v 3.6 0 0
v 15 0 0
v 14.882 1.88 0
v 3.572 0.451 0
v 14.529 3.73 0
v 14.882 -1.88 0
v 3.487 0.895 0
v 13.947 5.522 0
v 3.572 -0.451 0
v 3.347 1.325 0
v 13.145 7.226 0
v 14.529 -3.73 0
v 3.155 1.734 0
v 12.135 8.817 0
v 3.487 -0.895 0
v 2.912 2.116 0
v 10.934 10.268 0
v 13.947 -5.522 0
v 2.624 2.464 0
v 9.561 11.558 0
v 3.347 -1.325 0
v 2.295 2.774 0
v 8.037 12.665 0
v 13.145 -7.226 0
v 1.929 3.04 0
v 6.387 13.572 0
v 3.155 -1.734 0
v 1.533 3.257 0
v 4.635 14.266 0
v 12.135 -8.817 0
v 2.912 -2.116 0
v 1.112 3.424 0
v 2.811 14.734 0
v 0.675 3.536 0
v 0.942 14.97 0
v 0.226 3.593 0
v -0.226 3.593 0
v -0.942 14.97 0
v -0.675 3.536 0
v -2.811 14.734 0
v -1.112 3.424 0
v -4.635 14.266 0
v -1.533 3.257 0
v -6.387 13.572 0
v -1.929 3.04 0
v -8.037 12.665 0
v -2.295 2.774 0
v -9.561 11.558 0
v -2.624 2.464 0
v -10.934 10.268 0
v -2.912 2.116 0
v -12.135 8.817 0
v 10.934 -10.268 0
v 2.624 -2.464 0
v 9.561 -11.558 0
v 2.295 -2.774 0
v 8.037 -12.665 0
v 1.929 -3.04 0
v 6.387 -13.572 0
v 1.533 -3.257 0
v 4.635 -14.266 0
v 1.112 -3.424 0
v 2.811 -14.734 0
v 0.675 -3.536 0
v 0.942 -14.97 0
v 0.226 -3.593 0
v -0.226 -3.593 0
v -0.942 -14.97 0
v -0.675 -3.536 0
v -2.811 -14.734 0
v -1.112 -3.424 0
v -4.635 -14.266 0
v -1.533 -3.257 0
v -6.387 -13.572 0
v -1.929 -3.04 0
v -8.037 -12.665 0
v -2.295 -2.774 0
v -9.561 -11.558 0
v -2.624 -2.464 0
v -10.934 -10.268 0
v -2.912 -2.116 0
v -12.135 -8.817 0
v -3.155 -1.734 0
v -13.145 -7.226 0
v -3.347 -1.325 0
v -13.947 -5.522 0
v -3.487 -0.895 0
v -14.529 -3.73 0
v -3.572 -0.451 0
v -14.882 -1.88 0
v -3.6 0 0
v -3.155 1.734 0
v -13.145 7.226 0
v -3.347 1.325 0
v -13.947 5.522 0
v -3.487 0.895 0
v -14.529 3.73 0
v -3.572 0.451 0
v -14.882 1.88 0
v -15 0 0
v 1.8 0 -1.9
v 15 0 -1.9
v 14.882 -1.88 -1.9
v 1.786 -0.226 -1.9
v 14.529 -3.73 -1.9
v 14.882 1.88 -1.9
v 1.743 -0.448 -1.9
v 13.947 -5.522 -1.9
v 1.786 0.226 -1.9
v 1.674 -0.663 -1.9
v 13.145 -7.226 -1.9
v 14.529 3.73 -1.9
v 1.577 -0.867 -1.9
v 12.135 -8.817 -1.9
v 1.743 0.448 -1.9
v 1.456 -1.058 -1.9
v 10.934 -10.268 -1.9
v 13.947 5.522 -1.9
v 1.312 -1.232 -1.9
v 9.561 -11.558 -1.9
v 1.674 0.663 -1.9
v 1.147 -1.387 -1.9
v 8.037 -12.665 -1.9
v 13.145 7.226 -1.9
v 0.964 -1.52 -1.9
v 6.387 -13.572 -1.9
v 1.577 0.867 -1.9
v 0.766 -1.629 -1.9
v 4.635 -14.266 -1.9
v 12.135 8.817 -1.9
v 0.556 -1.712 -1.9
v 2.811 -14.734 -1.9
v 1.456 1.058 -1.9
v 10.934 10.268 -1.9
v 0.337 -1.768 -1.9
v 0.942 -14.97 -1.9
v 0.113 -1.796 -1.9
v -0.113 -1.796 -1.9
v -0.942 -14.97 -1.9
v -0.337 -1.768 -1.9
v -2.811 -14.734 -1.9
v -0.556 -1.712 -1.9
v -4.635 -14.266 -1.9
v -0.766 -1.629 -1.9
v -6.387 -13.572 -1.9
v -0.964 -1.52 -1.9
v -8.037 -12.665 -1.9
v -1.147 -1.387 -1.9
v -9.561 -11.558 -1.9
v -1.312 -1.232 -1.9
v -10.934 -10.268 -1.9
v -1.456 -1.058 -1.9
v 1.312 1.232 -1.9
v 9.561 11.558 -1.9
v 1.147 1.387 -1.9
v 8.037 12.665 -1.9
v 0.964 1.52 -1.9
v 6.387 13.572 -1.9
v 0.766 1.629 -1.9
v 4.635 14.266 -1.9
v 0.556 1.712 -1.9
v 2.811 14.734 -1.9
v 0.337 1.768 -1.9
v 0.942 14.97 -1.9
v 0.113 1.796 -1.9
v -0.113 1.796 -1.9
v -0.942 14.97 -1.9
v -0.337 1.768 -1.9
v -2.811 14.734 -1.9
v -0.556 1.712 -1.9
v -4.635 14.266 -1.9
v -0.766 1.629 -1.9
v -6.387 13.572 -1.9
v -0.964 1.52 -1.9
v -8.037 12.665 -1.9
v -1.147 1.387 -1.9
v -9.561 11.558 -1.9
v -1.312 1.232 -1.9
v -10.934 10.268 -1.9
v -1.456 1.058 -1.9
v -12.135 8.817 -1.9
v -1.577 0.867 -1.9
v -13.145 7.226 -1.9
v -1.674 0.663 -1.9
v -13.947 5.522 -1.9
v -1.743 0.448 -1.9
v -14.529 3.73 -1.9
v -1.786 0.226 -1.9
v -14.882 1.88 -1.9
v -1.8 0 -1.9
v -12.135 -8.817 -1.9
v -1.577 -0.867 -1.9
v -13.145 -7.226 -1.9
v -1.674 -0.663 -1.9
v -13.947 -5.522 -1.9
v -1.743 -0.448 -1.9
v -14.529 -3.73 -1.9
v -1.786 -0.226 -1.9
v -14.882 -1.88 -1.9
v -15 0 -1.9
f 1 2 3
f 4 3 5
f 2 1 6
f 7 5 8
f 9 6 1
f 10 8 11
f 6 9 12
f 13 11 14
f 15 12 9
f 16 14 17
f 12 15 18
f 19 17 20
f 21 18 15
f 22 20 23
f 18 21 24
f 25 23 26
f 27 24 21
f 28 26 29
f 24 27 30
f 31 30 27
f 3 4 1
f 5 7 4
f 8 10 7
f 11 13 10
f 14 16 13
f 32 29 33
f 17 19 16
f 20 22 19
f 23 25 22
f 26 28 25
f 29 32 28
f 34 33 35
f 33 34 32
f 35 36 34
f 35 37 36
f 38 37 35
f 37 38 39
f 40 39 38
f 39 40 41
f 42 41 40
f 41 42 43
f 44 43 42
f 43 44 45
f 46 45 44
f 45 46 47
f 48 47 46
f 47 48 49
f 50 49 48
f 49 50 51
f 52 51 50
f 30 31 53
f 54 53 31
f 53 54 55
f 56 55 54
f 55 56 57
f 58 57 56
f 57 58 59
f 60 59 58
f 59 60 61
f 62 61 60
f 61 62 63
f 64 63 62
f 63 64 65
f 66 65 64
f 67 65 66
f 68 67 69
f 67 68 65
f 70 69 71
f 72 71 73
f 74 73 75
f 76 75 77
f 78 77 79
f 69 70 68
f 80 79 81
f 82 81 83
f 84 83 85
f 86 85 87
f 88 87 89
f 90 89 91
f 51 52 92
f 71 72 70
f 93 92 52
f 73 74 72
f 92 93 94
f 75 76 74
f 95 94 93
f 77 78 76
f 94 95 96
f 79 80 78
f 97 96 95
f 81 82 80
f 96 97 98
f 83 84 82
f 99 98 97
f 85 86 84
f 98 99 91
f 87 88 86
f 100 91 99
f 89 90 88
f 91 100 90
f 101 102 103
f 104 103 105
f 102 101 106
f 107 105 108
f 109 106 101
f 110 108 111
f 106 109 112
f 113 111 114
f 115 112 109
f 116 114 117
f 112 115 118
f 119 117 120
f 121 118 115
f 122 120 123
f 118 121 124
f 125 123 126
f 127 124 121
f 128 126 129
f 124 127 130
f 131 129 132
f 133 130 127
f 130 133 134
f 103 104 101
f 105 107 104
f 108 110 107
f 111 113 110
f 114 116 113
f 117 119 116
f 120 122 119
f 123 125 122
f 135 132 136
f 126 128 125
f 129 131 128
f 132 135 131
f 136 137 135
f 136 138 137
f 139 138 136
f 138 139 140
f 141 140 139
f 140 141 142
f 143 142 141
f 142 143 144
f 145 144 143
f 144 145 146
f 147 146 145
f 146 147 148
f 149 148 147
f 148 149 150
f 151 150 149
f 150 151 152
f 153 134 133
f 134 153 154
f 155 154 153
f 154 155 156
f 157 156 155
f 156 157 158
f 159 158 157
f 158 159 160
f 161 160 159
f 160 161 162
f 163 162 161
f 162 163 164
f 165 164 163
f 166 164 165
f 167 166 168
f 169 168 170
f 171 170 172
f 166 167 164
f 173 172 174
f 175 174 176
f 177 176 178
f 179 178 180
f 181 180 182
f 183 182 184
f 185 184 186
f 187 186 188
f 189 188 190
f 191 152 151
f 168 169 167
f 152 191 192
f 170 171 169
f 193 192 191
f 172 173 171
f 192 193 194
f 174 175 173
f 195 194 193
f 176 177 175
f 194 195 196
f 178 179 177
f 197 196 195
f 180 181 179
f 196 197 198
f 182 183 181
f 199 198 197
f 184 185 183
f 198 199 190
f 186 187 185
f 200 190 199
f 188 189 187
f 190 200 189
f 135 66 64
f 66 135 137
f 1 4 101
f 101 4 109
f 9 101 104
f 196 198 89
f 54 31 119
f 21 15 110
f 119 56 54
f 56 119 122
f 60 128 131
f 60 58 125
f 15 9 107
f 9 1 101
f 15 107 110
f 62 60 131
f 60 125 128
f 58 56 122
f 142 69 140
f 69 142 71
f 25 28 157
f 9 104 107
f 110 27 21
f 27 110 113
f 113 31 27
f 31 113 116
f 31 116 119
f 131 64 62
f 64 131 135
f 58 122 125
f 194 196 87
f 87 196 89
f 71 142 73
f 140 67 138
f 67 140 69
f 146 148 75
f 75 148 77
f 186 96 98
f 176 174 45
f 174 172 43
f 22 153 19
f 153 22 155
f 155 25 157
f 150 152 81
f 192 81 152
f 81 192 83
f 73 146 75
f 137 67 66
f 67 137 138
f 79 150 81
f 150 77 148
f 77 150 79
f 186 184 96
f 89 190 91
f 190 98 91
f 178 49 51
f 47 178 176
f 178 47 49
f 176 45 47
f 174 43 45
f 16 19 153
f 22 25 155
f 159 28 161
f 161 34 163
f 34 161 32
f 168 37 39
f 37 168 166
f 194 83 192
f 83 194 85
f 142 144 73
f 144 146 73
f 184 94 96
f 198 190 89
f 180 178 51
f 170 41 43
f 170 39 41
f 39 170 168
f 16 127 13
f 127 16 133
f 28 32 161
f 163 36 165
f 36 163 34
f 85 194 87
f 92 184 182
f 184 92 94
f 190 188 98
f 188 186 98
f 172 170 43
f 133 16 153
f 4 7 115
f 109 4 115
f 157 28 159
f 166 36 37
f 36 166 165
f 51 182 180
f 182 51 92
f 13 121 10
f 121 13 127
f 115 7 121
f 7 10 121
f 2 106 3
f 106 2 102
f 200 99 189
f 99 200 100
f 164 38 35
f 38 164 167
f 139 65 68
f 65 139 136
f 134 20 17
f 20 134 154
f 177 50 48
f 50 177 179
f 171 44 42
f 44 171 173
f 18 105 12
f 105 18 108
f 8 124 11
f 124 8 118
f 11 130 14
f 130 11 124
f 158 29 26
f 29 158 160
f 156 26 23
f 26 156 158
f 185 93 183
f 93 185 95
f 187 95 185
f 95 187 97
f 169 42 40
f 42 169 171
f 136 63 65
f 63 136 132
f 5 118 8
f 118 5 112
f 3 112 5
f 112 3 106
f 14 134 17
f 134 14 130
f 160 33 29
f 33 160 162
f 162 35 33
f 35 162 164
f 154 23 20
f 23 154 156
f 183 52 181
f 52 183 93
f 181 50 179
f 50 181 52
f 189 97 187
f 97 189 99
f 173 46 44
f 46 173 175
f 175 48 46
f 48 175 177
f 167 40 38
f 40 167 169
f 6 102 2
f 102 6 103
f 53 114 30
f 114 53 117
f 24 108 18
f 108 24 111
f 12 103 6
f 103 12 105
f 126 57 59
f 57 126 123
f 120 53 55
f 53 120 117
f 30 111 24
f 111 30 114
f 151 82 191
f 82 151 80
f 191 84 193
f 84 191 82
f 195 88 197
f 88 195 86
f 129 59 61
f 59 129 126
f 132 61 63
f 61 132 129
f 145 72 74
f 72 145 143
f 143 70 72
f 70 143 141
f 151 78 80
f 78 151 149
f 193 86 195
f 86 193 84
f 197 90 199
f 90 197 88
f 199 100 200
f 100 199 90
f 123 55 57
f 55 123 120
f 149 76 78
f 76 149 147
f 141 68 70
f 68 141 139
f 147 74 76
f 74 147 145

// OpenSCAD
$fn = 50;


difference() {
	union() {
		translate(v = [0, 0, -1.9000000000]) {
			cylinder(h = 1.9000000000, r = 15.0000000000);
		}
	}
	union() {
		translate(v = [0, 0, 0]) {
			rotate(a = [0, 0, 0]) {
				difference() {
					union() {
						#translate(v = [0, 0, -1.9000000000]) {
							cylinder(h = 1.9000000000, r = 1.5000000000);
						}
						#translate(v = [0, 0, -1.9000000000]) {
							cylinder(h = 1.9000000000, r1 = 1.8000000000, r2 = 3.6000000000);
						}
						#translate(v = [0, 0, -1.9000000000]) {
							cylinder(h = 1.9000000000, r = 1.8000000000);
						}
						#translate(v = [0, 0, -1.9000000000]) {
							cylinder(h = 1.9000000000, r = 1.5000000000);
						}
					}
					union();
				}
			}
		}
	}
}
